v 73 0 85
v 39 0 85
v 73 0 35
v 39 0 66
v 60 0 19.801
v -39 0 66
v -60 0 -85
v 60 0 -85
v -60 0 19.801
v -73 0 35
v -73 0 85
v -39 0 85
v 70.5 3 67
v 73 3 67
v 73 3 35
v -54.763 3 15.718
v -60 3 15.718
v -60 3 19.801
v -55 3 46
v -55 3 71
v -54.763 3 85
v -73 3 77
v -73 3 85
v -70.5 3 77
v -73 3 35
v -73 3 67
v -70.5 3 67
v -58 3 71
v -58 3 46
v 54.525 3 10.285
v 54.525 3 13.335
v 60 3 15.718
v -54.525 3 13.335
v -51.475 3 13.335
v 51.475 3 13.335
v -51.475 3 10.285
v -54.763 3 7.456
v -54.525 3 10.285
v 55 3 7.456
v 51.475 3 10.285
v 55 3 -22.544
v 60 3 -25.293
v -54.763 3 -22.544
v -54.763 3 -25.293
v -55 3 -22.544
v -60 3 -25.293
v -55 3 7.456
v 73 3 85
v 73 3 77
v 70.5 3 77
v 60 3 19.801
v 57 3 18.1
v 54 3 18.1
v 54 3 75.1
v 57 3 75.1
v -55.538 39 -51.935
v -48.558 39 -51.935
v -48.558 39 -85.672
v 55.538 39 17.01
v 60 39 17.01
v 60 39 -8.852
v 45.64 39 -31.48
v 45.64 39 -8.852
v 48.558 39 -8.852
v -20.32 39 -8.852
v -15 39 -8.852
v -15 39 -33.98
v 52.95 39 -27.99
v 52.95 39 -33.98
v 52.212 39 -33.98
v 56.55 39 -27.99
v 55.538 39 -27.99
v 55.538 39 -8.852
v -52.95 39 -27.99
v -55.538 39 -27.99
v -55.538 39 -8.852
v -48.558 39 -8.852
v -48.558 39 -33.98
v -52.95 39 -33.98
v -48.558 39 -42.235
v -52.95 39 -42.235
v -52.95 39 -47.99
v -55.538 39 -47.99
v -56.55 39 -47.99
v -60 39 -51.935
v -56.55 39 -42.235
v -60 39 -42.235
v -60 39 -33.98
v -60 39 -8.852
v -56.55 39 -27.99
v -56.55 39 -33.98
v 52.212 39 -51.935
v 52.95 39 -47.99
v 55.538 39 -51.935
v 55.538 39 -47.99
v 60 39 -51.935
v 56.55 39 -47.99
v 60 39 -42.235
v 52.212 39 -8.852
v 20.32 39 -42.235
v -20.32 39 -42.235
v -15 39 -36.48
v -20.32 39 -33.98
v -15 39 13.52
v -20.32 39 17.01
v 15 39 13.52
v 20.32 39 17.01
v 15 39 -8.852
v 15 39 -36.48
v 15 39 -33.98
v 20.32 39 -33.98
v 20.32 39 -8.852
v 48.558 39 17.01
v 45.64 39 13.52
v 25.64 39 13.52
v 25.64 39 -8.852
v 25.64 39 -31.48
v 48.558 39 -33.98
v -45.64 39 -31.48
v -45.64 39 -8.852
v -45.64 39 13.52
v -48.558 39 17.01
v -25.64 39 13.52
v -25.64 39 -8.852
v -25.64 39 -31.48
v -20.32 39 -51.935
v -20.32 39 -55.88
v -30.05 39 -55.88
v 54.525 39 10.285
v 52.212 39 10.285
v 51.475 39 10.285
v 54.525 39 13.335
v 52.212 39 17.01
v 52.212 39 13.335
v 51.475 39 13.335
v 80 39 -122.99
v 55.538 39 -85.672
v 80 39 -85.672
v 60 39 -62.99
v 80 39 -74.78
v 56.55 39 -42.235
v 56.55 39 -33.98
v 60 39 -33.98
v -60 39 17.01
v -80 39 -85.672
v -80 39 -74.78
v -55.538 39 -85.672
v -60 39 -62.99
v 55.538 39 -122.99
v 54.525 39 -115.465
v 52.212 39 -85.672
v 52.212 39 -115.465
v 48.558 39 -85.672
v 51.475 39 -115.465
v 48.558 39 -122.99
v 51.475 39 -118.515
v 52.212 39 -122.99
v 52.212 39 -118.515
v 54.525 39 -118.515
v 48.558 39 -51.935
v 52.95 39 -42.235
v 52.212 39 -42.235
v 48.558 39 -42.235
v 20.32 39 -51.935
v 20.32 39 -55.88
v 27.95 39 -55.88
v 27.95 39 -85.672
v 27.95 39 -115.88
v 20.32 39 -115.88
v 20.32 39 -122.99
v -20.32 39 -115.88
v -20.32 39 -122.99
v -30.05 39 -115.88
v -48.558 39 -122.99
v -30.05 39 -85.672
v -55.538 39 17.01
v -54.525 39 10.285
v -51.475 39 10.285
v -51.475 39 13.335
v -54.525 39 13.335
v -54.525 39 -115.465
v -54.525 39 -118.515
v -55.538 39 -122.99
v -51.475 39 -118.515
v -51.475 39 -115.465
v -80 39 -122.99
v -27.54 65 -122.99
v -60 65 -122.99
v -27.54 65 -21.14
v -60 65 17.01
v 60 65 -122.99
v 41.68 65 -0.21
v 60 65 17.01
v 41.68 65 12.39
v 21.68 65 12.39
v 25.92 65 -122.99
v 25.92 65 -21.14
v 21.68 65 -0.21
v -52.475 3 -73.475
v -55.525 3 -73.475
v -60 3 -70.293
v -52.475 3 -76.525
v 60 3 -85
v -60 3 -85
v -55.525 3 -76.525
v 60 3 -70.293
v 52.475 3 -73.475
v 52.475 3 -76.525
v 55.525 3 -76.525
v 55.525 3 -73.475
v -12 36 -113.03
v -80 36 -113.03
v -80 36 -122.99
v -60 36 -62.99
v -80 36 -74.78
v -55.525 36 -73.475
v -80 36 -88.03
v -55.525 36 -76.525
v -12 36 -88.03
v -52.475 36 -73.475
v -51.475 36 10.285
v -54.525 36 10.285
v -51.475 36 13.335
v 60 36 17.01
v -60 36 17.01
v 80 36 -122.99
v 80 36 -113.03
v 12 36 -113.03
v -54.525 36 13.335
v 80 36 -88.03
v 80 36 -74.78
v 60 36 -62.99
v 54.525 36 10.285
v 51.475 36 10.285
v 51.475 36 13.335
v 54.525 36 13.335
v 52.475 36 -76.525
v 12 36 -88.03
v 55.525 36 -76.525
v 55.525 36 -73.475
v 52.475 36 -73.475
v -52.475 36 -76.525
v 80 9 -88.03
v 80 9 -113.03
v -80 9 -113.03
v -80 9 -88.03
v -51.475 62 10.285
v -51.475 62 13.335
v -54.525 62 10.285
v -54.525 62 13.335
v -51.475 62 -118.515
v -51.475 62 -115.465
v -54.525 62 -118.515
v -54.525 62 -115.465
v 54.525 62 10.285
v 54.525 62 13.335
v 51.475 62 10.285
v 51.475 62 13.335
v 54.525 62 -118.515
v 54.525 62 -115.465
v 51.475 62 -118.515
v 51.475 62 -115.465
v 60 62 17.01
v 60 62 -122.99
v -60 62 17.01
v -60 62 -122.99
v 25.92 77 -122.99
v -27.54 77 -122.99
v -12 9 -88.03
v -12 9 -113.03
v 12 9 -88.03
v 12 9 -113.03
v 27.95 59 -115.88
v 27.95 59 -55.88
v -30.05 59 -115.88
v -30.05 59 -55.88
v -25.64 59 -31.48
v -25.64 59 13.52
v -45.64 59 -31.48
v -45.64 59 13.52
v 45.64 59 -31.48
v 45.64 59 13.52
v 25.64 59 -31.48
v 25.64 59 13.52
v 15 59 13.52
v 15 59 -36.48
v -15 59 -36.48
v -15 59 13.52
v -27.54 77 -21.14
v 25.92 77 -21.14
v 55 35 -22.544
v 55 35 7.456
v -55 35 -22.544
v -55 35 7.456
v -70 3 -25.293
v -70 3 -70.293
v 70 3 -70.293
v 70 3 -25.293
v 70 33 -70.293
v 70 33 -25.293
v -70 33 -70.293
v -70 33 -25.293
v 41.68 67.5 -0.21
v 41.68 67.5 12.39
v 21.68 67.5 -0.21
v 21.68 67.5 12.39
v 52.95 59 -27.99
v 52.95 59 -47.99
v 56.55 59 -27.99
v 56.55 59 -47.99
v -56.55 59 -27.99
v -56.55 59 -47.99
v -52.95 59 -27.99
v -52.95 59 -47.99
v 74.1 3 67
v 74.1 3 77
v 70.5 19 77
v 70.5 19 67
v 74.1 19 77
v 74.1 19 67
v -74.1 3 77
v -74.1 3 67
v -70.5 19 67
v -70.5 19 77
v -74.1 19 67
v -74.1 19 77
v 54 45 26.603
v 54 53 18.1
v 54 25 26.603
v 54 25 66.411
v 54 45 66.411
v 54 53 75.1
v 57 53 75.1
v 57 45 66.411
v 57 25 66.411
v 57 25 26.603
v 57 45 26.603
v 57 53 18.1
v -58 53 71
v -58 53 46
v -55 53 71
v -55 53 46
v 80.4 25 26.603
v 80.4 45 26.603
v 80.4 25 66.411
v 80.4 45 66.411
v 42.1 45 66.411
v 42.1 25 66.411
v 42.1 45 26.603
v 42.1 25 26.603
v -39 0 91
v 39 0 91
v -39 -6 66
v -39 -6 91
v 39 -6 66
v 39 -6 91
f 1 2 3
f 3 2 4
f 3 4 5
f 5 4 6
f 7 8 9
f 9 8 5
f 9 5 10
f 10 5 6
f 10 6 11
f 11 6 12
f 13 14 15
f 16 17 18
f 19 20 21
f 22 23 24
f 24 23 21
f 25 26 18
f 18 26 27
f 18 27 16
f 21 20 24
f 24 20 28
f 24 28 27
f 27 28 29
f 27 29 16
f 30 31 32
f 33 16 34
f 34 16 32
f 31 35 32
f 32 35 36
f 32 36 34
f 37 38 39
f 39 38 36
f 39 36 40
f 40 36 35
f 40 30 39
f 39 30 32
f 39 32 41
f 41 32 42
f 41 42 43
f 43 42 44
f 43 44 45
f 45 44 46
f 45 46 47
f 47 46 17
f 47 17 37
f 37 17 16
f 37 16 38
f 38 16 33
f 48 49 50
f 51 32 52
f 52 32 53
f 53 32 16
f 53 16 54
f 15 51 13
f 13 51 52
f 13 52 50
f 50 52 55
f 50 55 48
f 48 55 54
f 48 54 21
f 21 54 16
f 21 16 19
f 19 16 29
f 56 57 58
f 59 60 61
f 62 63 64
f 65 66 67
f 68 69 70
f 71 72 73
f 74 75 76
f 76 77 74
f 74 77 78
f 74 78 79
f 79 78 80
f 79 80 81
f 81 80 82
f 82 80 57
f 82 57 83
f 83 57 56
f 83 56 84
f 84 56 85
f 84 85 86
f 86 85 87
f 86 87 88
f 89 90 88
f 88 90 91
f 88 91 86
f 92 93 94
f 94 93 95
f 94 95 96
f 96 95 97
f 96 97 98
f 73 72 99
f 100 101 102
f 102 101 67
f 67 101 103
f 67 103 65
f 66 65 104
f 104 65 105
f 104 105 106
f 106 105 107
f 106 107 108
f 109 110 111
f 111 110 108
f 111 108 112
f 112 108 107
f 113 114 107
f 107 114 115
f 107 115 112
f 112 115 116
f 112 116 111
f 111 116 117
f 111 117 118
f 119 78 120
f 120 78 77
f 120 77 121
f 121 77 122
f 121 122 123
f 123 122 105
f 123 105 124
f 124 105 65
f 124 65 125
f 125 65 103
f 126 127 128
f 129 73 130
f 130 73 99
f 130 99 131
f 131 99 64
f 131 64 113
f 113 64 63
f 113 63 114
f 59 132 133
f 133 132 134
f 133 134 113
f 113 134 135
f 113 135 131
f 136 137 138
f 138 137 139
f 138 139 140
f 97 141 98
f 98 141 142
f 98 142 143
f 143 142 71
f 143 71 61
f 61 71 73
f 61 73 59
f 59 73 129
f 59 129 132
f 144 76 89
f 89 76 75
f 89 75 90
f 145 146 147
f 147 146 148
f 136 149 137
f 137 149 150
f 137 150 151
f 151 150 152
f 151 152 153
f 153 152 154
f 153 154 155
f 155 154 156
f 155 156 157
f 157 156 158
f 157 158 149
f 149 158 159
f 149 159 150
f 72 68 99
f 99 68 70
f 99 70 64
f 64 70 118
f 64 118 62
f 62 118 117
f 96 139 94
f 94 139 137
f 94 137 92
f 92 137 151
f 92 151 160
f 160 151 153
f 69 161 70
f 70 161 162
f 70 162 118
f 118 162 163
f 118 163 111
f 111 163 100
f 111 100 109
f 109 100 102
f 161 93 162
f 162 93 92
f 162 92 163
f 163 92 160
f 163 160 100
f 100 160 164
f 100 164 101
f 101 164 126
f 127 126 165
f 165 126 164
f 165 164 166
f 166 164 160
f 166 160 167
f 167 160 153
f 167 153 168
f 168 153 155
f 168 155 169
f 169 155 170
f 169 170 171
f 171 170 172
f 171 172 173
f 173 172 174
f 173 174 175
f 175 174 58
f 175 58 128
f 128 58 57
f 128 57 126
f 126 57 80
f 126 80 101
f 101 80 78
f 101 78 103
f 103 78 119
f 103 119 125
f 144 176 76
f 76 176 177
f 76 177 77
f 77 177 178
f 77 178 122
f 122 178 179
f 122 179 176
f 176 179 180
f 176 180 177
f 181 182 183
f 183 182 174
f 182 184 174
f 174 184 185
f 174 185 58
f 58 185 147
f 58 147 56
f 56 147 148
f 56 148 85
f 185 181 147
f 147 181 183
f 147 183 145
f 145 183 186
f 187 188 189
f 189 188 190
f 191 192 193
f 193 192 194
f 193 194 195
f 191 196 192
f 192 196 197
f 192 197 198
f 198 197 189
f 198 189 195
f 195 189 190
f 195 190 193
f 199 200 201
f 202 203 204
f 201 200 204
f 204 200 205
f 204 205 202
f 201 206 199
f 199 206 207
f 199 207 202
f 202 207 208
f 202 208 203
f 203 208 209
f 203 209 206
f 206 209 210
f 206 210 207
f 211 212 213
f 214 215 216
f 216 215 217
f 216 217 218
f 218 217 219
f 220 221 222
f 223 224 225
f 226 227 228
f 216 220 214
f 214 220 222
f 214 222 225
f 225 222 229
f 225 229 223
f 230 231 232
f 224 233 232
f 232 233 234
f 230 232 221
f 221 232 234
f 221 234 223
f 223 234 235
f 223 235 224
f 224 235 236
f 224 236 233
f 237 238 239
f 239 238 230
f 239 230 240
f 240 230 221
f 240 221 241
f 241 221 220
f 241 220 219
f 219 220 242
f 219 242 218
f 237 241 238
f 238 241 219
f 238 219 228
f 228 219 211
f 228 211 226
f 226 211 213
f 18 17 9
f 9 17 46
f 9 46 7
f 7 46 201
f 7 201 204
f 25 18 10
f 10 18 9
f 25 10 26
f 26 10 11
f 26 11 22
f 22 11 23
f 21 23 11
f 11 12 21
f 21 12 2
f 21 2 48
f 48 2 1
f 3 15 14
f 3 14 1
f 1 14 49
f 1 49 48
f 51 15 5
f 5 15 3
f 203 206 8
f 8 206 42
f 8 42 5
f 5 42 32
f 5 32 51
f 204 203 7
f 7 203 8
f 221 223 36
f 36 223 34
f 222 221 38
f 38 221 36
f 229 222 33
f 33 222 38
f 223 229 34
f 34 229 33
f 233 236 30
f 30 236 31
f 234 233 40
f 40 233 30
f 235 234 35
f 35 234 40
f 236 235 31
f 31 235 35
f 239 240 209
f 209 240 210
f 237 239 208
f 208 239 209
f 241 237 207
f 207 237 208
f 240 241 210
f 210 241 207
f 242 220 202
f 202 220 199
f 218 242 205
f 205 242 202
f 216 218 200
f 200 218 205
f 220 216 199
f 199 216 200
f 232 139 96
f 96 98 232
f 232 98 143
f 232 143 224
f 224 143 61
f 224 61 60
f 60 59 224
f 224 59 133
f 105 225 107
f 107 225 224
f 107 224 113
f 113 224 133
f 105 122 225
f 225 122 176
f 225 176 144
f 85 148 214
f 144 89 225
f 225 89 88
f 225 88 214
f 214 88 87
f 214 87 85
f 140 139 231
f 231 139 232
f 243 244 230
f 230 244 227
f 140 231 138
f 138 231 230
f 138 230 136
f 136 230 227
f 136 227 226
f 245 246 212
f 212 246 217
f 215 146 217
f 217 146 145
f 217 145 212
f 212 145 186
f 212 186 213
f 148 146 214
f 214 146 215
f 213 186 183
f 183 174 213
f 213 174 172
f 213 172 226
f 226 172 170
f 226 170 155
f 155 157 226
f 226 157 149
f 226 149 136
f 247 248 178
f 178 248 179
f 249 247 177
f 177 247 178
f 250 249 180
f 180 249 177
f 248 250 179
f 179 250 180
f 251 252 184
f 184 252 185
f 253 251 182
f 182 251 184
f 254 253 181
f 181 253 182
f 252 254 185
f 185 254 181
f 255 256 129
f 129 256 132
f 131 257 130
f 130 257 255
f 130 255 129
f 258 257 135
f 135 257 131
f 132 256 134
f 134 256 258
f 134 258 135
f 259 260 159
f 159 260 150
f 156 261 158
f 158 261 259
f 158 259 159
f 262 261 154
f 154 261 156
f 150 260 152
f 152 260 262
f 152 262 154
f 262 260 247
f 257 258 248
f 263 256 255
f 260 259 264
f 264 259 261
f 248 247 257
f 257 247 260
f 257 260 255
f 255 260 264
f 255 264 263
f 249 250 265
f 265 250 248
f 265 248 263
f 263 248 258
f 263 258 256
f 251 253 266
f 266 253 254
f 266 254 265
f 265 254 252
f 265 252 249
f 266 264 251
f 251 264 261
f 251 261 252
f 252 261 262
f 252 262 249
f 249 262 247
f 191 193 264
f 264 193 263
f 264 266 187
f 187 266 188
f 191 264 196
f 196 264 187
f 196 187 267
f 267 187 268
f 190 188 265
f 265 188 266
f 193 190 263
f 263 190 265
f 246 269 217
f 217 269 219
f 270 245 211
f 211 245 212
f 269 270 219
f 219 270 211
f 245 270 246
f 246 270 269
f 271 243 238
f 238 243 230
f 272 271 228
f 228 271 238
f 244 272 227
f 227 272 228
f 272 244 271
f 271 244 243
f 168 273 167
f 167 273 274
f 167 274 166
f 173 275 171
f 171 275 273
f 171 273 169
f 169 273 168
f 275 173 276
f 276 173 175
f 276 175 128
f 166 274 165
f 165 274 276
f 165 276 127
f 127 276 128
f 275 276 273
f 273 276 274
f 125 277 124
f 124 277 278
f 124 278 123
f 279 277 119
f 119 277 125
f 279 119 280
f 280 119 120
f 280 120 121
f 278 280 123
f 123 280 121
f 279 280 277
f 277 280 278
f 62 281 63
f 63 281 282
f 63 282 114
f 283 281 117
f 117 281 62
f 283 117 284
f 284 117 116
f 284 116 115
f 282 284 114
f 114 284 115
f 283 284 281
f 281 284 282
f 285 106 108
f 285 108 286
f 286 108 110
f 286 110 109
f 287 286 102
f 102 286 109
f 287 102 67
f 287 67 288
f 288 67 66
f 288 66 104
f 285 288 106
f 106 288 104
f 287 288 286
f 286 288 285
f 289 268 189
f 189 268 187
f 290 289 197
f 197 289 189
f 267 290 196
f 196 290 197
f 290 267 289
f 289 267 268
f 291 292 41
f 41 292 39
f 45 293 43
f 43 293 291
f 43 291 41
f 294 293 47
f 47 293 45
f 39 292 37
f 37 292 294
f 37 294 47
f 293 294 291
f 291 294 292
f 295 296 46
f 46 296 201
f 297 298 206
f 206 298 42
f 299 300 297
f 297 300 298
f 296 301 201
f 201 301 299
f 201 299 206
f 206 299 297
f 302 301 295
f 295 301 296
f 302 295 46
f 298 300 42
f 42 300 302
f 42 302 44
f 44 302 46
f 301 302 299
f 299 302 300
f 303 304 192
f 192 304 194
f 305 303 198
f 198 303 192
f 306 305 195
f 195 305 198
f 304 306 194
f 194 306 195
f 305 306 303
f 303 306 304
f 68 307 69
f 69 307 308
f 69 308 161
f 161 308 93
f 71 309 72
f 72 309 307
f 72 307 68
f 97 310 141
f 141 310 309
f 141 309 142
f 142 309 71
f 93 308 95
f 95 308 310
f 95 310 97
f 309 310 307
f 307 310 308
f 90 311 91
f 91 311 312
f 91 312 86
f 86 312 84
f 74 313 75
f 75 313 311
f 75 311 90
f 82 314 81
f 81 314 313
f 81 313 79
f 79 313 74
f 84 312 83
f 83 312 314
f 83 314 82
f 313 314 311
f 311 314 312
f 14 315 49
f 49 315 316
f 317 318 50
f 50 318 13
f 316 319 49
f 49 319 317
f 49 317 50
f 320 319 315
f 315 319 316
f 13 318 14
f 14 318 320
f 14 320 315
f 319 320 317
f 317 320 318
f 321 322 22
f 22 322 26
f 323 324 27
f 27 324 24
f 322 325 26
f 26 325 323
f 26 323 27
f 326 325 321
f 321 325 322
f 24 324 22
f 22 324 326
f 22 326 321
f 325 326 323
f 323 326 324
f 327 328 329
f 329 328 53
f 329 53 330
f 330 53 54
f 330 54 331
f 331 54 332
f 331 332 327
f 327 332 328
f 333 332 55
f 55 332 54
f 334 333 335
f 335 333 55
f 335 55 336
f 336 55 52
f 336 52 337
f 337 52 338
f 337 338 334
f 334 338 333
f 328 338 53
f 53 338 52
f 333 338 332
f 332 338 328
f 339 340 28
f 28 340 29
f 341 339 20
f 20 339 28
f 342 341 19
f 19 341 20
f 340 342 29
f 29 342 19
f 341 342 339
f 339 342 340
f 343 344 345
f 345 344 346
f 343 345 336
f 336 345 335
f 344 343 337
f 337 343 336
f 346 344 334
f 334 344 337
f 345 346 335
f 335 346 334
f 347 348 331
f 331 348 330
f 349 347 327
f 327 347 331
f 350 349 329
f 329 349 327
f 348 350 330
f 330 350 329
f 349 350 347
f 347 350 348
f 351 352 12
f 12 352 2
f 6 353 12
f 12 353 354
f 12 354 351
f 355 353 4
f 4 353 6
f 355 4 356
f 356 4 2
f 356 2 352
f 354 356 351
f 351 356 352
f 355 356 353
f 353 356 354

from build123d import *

# Parameters (mm, degrees)
BOSS_EXTRUDE1_DEPTH       = 3
SKETCH2_W                 = 3.05
SKETCH2_H                 = 3.05
BOSS_EXTRUDE2_DEPTH       = 33
SKETCH3_W                 = 120
SKETCH3_H                 = 140
BOSS_EXTRUDE3_DEPTH       = 3
SKETCH4_W                 = 3.05
SKETCH4_H                 = 3.05
BOSS_EXTRUDE4_DEPTH       = 23
SKETCH6_W                 = 120
SKETCH6_H                 = 140
BOSS_EXTRUDE5_DEPTH       = 3
SKETCH7_W                 = 68
SKETCH7_H                 = 25
BOSS_EXTRUDE6_DEPTH       = 27
SKETCH9_W                 = 58
SKETCH9_H                 = 60
SKETCH9_W_2               = 20
SKETCH9_H_2               = 45
SKETCH9_W_3               = 30
SKETCH9_H_3               = 50
BOSS_EXTRUDE7_DEPTH       = 20
SKETCH10_W                = 53.46
SKETCH10_H                = 101.85
BOSS_EXTRUDE8_DEPTH       = 12
SKETCH11_W                = 110
SKETCH11_H                = 30
BOSS_EXTRUDE9_DEPTH       = 32
SKETCH12_W                = 140
SKETCH12_H                = 45
BOSS_EXTRUDE10_DEPTH      = 30
SKETCH13_W                = 20
SKETCH13_H                = 12.6
BOSS_EXTRUDE11_DEPTH      = 2.5
SKETCH14_W                = 3.6
SKETCH14_H                = 20
BOSS_EXTRUDE12_DEPTH      = 20
SKETCH15_W                = 3.6
SKETCH15_H                = 10
BOSS_EXTRUDE13_DEPTH      = 16
SKETCH16_W                = 3
SKETCH16_H                = 57
SKETCH16_H_2              = 25
BOSS_EXTRUDE14_DEPTH      = 50
BOSS_EXTRUDE15_DEPTH      = 23.4
BOSS_EXTRUDE15_DEPTH_BACK = 14.9
SKETCH17_W                = 39.808487161
SKETCH17_H                = 20
SKETCH18_W                = 78
SKETCH18_H                = 25
BOSS_EXTRUDE16_DEPTH      = 6


with BuildPart() as part:
    # Sketch1 → Boss-Extrude1 (new body)
    with BuildSketch(Plane(origin=(0, 0, 0), x_dir=(1, 0, 0), z_dir=(0, 1, 0))):
        Polygon((-73, -35), (-60, -19.801315846), (-60, 85), (60, 85), (60, -19.801315846), (73, -35), (73, -85), (60, -85), (-60, -85), (-73, -85), align=None)
    extrude(amount=BOSS_EXTRUDE1_DEPTH)

    # Sketch2 → Boss-Extrude2 (add)
    with BuildSketch(Plane(origin=(0, 3, 0), x_dir=(1, 0, 0), z_dir=(0, 1, 0))):
        with Locations((-53, -11.81)):
            Rectangle(SKETCH2_W, SKETCH2_H)
        with Locations((53, -11.81)):
            Rectangle(SKETCH2_W, SKETCH2_H)
        with Locations((54, 75)):
            Rectangle(SKETCH2_W, SKETCH2_H)
        with Locations((-54, 75)):
            Rectangle(SKETCH2_W, SKETCH2_H)
    extrude(amount=BOSS_EXTRUDE2_DEPTH)

    # Sketch3 → Boss-Extrude3 (add)
    with BuildSketch(Plane(origin=(0, 36, 0), x_dir=(1, 0, 0), z_dir=(0, 1, 0))):
        Polygon((-80, 74.780305915), (-60, 62.99), (-60, 122.99), (-80, 122.99), align=None)
        with Locations((0, 52.99)):
            Rectangle(SKETCH3_W, SKETCH3_H)
        Polygon((60, 122.99), (60, 62.99), (80, 74.780305915), (80, 122.99), align=None)
    extrude(amount=BOSS_EXTRUDE3_DEPTH)

    # Sketch4 → Boss-Extrude4 (add)
    with BuildSketch(Plane(origin=(0, 39, 0), x_dir=(1, 0, 0), z_dir=(0, 1, 0))):
        with Locations((-53, -11.81)):
            Rectangle(SKETCH4_W, SKETCH4_H)
        with Locations((-53, 116.99)):
            Rectangle(SKETCH4_W, SKETCH4_H)
        with Locations((53, -11.81)):
            Rectangle(SKETCH4_W, SKETCH4_H)
        with Locations((53, 116.99)):
            Rectangle(SKETCH4_W, SKETCH4_H)
    extrude(amount=BOSS_EXTRUDE4_DEPTH)

    # Sketch6 → Boss-Extrude5 (add)
    with BuildSketch(Plane(origin=(0, 62, 0), x_dir=(1, 0, 0), z_dir=(0, 1, 0))):
        with Locations((0, 52.99)):
            Rectangle(SKETCH6_W, SKETCH6_H)
    extrude(amount=BOSS_EXTRUDE5_DEPTH)

    # Sketch7 → Boss-Extrude6 (add)
    with BuildSketch(Plane.XZ.offset(-36)):
        with Locations((-46, -100.53)):
            Rectangle(SKETCH7_W, SKETCH7_H)
        with Locations((46, -100.53)):
            Rectangle(SKETCH7_W, SKETCH7_H)
    extrude(amount=BOSS_EXTRUDE6_DEPTH)

    # Sketch9 → Boss-Extrude7 (add)
    with BuildSketch(Plane(origin=(0, 39, 0), x_dir=(1, 0, 0), z_dir=(0, 1, 0))):
        with Locations((-1.05, 85.88)):
            Rectangle(SKETCH9_W, SKETCH9_H)
        with Locations((-35.64, 8.98)):
            Rectangle(SKETCH9_W_2, SKETCH9_H_2)
        with Locations((35.64, 8.98)):
            Rectangle(SKETCH9_W_2, SKETCH9_H_2)
        with Locations((0, 11.48)):
            Rectangle(SKETCH9_W_3, SKETCH9_H_3)
    extrude(amount=BOSS_EXTRUDE7_DEPTH)

    # Sketch10 → Boss-Extrude8 (add)
    with BuildSketch(Plane(origin=(0, 65, 0), x_dir=(1, 0, 0), z_dir=(0, 1, 0))):
        with Locations((-0.81, 72.065)):
            Rectangle(SKETCH10_W, SKETCH10_H)
    extrude(amount=BOSS_EXTRUDE8_DEPTH)

    # Sketch11 → Boss-Extrude9 (add)
    with BuildSketch(Plane(origin=(0, 3, 0), x_dir=(1, 0, 0), z_dir=(0, 1, 0))):
        with Locations((0, 7.543684861)):
            Rectangle(SKETCH11_W, SKETCH11_H)
    extrude(amount=BOSS_EXTRUDE9_DEPTH)

    # Sketch12 → Boss-Extrude10 (add)
    with BuildSketch(Plane(origin=(0, 3, 0), x_dir=(1, 0, 0), z_dir=(0, 1, 0))):
        with Locations((0, 47.793183731)):
            Rectangle(SKETCH12_W, SKETCH12_H)
    extrude(amount=BOSS_EXTRUDE10_DEPTH)

    # Sketch13 → Boss-Extrude11 (add)
    with BuildSketch(Plane(origin=(0, 65, 0), x_dir=(1, 0, 0), z_dir=(0, 1, 0))):
        with Locations((31.68, -6.09)):
            Rectangle(SKETCH13_W, SKETCH13_H)
    extrude(amount=BOSS_EXTRUDE11_DEPTH)

    # Sketch14 → Boss-Extrude12 (add)
    with BuildSketch(Plane(origin=(0, 39, 0), x_dir=(1, 0, 0), z_dir=(0, 1, 0))):
        with Locations((54.75, 37.99)):
            Rectangle(SKETCH14_W, SKETCH14_H)
        with Locations((-54.75, 37.99)):
            Rectangle(SKETCH14_W, SKETCH14_H)
    extrude(amount=BOSS_EXTRUDE12_DEPTH)

    # Sketch15 → Boss-Extrude13 (add)
    with BuildSketch(Plane(origin=(0, 3, 0), x_dir=(1, 0, 0), z_dir=(0, 1, 0))):
        with Locations((72.3, -72)):
            Rectangle(SKETCH15_W, SKETCH15_H)
        with Locations((-72.3, -72)):
            Rectangle(SKETCH15_W, SKETCH15_H)
    extrude(amount=BOSS_EXTRUDE13_DEPTH)

    # Sketch16 → Boss-Extrude14 (add)
    with BuildSketch(Plane(origin=(0, 3, 0), x_dir=(1, 0, 0), z_dir=(0, 1, 0))):
        with Locations((55.5, -46.6)):
            Rectangle(SKETCH16_W, SKETCH16_H)
        with Locations((-56.5, -58.5)):
            Rectangle(SKETCH16_W, SKETCH16_H_2)
    extrude(amount=BOSS_EXTRUDE14_DEPTH)

    # Sketch17 → Boss-Extrude15 (add, two sides: drawn at the far end of the back side and taken through both)
    with BuildSketch(Plane(origin=(57, 0, 0), x_dir=(0, 0, -1), z_dir=(1, 0, 0)).offset(-BOSS_EXTRUDE15_DEPTH_BACK)):
        with Locations((-46.50705122, 35)):
            Rectangle(SKETCH17_W, SKETCH17_H)
    extrude(amount=BOSS_EXTRUDE15_DEPTH + BOSS_EXTRUDE15_DEPTH_BACK)

    # Sketch18 → Boss-Extrude16 (add)
    with BuildSketch(Plane.XZ):
        with Locations((0, 78.5)):
            Rectangle(SKETCH18_W, SKETCH18_H)
    extrude(amount=BOSS_EXTRUDE16_DEPTH)


solid = part.part
